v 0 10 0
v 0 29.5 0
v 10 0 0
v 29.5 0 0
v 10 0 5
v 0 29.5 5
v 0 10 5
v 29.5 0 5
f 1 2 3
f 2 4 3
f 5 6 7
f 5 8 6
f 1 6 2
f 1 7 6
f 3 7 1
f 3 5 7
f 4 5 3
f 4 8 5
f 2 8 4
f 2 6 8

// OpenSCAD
$fa=3;
$fs=0.05;
p = 0.02;
p2 = 2*p;

da = 10.0;
a = 29.5;
c = 5.0;

points = [[0, da],
          [0, a],
          [a, 0],
          [da, 0]];
          
linear_extrude(c)
polygon(points);
